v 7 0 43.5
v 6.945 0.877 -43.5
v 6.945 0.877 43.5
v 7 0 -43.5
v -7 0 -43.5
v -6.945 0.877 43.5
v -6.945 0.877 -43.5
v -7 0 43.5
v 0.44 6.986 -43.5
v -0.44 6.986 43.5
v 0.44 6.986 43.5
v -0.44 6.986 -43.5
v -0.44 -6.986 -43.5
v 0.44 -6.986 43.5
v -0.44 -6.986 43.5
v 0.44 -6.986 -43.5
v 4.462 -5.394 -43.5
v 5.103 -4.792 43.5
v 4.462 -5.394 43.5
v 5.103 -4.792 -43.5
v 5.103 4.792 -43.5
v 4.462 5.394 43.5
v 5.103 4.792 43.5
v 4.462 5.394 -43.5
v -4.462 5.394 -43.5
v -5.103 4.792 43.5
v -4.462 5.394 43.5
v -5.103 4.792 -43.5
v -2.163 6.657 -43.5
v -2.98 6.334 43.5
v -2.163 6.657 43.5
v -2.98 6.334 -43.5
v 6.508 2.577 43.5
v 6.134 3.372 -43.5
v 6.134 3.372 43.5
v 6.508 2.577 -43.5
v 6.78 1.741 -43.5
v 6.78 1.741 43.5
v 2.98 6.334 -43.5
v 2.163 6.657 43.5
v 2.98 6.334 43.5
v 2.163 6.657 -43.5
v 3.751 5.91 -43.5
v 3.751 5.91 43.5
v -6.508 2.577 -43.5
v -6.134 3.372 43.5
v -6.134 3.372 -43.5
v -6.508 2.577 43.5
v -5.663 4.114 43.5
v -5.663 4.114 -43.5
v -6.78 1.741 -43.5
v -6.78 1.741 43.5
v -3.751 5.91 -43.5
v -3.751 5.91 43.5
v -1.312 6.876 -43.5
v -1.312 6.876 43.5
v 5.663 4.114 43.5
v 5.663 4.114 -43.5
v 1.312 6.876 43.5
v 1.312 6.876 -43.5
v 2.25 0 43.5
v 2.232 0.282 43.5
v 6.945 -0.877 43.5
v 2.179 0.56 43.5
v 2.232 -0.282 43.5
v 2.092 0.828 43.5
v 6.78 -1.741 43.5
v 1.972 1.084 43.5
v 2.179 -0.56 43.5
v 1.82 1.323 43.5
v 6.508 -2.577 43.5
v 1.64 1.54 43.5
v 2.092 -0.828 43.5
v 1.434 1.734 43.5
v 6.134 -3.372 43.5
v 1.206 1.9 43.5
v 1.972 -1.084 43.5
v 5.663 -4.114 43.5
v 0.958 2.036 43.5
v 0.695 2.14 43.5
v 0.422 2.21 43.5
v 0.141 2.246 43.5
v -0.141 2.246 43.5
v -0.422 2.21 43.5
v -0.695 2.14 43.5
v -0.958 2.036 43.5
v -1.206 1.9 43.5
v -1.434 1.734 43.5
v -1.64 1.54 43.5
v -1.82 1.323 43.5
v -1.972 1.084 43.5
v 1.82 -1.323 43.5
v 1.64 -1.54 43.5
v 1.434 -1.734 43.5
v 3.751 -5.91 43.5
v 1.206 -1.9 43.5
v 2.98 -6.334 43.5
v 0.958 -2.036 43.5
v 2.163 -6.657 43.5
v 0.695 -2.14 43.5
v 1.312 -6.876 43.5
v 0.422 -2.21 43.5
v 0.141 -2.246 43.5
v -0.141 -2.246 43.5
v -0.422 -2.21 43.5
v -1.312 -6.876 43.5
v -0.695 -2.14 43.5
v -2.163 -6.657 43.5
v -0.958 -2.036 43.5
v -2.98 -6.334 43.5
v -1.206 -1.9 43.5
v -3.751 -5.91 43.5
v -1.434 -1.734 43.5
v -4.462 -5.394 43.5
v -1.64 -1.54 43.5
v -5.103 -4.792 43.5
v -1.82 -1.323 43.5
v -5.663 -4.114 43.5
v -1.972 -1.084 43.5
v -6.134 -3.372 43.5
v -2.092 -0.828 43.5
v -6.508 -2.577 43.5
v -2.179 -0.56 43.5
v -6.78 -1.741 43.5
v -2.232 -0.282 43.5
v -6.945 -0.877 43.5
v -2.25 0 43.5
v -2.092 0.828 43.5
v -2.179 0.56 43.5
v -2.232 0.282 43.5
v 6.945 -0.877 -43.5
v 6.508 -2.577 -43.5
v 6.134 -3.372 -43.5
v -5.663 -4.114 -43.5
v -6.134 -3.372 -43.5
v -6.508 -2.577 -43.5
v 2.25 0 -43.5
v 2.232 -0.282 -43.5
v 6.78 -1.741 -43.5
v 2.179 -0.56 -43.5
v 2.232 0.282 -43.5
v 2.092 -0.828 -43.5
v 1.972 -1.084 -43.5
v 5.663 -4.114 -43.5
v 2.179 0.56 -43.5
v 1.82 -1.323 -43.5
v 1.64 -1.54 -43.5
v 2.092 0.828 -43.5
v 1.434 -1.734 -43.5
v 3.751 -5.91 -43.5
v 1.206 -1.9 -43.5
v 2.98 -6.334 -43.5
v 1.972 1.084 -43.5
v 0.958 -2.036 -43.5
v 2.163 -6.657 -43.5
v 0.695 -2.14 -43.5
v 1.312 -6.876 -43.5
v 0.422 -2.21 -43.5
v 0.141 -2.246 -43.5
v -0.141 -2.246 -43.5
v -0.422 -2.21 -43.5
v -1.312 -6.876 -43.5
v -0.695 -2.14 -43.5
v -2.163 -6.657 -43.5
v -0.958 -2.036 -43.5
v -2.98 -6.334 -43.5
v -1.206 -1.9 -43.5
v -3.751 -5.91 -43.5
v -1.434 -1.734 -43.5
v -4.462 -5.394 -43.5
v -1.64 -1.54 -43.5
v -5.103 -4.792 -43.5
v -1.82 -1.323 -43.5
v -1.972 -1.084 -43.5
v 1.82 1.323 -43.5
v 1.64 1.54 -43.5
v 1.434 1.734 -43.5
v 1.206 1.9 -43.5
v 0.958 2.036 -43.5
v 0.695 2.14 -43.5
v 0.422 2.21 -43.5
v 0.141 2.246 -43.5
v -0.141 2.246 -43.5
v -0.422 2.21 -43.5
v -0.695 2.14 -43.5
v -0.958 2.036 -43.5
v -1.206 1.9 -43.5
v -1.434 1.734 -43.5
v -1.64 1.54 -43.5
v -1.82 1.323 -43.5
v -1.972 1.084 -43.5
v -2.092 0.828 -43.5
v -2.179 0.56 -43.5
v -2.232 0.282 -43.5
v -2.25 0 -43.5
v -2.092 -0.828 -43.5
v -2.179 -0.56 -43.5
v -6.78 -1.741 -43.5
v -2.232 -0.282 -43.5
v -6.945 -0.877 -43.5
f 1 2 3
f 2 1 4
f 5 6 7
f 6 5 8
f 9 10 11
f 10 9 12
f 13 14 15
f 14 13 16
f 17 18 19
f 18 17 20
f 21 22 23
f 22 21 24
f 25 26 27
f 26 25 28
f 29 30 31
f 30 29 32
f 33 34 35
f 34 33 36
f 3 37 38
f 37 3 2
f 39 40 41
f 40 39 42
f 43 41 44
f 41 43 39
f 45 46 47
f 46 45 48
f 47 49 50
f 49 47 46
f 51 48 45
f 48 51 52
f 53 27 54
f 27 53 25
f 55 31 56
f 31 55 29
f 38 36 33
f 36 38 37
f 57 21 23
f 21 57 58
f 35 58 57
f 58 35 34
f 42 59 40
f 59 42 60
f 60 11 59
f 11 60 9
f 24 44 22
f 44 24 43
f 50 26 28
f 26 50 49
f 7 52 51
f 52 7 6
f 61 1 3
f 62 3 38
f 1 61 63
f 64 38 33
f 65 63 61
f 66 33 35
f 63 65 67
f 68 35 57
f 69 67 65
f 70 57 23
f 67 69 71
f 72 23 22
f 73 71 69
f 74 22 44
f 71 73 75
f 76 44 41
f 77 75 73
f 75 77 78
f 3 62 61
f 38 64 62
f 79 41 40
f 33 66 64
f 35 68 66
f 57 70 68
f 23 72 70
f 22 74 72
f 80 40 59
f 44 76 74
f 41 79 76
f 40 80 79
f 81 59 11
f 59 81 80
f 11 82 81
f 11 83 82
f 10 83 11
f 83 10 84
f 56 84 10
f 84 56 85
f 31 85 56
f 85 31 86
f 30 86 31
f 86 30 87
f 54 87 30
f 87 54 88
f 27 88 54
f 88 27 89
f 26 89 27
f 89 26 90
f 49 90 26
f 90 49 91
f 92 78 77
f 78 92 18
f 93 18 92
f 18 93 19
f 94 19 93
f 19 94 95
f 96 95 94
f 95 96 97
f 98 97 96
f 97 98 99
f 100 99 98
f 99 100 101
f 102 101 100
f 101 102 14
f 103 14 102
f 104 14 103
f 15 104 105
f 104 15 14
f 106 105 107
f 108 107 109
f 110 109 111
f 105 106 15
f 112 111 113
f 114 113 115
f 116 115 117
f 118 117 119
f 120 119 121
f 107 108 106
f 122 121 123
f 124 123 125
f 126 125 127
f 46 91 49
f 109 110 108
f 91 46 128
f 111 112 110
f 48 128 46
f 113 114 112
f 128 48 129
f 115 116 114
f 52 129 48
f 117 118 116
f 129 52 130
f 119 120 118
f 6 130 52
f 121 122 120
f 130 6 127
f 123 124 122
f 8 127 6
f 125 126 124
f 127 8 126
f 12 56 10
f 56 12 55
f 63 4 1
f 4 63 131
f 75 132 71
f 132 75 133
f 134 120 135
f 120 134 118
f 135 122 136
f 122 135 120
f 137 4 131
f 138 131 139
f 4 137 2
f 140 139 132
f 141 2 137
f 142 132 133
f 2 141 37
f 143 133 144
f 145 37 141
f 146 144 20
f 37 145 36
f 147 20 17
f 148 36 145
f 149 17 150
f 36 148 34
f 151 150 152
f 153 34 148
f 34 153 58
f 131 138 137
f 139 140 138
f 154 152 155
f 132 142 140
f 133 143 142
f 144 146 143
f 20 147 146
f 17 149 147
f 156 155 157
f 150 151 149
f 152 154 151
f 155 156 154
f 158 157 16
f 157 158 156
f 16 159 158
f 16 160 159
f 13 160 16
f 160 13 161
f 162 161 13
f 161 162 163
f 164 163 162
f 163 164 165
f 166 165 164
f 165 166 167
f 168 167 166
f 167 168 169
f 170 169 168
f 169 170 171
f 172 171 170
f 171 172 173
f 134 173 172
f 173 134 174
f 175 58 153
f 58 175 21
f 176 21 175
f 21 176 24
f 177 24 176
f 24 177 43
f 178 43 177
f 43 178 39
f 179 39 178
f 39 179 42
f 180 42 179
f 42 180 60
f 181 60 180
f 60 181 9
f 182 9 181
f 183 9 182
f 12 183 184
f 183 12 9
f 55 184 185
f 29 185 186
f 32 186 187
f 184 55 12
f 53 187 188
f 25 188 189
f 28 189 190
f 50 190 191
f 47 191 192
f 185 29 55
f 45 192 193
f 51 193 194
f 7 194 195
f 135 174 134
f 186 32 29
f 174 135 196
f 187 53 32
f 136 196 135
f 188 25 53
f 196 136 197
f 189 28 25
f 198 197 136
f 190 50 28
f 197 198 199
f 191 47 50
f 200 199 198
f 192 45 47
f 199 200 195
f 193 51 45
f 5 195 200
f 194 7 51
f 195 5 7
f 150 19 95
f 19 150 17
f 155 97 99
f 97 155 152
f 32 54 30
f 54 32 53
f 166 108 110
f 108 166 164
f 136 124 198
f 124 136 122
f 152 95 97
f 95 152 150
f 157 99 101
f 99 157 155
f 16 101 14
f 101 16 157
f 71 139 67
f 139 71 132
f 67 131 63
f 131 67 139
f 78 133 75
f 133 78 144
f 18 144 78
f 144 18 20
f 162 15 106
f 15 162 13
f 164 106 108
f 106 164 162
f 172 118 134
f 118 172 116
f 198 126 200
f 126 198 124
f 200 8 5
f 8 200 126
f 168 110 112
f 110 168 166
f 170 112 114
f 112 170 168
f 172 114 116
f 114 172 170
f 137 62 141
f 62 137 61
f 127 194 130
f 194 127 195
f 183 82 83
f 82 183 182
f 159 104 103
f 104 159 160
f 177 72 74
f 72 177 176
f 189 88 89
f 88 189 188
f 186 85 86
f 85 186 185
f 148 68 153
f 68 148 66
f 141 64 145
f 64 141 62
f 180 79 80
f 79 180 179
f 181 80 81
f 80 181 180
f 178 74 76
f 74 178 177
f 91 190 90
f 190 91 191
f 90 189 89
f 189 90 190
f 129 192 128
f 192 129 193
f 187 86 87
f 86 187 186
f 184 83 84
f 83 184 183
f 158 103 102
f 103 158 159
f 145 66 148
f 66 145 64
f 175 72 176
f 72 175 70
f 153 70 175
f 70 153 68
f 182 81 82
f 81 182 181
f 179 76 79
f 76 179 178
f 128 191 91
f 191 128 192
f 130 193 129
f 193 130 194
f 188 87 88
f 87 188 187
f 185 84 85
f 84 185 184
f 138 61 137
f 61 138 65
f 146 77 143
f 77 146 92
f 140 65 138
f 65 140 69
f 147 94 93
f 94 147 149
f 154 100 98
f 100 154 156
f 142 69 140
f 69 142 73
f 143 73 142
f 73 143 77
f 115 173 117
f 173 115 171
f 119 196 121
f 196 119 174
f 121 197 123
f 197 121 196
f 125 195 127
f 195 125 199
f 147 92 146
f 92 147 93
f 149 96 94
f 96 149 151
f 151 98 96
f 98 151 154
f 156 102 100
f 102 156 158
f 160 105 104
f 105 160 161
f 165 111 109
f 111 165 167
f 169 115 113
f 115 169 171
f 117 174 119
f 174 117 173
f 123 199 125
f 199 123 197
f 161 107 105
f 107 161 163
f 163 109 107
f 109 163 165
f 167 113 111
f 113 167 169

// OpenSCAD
$fn = 50;


difference() {
	union() {
		translate(v = [0, 0, -43.5000000000]) {
			cylinder(h = 87, r = 7.0000000000);
		}
	}
	union() {
		translate(v = [0, 0, -100.0000000000]) {
			cylinder(h = 200, r = 2.2500000000);
		}
	}
}
